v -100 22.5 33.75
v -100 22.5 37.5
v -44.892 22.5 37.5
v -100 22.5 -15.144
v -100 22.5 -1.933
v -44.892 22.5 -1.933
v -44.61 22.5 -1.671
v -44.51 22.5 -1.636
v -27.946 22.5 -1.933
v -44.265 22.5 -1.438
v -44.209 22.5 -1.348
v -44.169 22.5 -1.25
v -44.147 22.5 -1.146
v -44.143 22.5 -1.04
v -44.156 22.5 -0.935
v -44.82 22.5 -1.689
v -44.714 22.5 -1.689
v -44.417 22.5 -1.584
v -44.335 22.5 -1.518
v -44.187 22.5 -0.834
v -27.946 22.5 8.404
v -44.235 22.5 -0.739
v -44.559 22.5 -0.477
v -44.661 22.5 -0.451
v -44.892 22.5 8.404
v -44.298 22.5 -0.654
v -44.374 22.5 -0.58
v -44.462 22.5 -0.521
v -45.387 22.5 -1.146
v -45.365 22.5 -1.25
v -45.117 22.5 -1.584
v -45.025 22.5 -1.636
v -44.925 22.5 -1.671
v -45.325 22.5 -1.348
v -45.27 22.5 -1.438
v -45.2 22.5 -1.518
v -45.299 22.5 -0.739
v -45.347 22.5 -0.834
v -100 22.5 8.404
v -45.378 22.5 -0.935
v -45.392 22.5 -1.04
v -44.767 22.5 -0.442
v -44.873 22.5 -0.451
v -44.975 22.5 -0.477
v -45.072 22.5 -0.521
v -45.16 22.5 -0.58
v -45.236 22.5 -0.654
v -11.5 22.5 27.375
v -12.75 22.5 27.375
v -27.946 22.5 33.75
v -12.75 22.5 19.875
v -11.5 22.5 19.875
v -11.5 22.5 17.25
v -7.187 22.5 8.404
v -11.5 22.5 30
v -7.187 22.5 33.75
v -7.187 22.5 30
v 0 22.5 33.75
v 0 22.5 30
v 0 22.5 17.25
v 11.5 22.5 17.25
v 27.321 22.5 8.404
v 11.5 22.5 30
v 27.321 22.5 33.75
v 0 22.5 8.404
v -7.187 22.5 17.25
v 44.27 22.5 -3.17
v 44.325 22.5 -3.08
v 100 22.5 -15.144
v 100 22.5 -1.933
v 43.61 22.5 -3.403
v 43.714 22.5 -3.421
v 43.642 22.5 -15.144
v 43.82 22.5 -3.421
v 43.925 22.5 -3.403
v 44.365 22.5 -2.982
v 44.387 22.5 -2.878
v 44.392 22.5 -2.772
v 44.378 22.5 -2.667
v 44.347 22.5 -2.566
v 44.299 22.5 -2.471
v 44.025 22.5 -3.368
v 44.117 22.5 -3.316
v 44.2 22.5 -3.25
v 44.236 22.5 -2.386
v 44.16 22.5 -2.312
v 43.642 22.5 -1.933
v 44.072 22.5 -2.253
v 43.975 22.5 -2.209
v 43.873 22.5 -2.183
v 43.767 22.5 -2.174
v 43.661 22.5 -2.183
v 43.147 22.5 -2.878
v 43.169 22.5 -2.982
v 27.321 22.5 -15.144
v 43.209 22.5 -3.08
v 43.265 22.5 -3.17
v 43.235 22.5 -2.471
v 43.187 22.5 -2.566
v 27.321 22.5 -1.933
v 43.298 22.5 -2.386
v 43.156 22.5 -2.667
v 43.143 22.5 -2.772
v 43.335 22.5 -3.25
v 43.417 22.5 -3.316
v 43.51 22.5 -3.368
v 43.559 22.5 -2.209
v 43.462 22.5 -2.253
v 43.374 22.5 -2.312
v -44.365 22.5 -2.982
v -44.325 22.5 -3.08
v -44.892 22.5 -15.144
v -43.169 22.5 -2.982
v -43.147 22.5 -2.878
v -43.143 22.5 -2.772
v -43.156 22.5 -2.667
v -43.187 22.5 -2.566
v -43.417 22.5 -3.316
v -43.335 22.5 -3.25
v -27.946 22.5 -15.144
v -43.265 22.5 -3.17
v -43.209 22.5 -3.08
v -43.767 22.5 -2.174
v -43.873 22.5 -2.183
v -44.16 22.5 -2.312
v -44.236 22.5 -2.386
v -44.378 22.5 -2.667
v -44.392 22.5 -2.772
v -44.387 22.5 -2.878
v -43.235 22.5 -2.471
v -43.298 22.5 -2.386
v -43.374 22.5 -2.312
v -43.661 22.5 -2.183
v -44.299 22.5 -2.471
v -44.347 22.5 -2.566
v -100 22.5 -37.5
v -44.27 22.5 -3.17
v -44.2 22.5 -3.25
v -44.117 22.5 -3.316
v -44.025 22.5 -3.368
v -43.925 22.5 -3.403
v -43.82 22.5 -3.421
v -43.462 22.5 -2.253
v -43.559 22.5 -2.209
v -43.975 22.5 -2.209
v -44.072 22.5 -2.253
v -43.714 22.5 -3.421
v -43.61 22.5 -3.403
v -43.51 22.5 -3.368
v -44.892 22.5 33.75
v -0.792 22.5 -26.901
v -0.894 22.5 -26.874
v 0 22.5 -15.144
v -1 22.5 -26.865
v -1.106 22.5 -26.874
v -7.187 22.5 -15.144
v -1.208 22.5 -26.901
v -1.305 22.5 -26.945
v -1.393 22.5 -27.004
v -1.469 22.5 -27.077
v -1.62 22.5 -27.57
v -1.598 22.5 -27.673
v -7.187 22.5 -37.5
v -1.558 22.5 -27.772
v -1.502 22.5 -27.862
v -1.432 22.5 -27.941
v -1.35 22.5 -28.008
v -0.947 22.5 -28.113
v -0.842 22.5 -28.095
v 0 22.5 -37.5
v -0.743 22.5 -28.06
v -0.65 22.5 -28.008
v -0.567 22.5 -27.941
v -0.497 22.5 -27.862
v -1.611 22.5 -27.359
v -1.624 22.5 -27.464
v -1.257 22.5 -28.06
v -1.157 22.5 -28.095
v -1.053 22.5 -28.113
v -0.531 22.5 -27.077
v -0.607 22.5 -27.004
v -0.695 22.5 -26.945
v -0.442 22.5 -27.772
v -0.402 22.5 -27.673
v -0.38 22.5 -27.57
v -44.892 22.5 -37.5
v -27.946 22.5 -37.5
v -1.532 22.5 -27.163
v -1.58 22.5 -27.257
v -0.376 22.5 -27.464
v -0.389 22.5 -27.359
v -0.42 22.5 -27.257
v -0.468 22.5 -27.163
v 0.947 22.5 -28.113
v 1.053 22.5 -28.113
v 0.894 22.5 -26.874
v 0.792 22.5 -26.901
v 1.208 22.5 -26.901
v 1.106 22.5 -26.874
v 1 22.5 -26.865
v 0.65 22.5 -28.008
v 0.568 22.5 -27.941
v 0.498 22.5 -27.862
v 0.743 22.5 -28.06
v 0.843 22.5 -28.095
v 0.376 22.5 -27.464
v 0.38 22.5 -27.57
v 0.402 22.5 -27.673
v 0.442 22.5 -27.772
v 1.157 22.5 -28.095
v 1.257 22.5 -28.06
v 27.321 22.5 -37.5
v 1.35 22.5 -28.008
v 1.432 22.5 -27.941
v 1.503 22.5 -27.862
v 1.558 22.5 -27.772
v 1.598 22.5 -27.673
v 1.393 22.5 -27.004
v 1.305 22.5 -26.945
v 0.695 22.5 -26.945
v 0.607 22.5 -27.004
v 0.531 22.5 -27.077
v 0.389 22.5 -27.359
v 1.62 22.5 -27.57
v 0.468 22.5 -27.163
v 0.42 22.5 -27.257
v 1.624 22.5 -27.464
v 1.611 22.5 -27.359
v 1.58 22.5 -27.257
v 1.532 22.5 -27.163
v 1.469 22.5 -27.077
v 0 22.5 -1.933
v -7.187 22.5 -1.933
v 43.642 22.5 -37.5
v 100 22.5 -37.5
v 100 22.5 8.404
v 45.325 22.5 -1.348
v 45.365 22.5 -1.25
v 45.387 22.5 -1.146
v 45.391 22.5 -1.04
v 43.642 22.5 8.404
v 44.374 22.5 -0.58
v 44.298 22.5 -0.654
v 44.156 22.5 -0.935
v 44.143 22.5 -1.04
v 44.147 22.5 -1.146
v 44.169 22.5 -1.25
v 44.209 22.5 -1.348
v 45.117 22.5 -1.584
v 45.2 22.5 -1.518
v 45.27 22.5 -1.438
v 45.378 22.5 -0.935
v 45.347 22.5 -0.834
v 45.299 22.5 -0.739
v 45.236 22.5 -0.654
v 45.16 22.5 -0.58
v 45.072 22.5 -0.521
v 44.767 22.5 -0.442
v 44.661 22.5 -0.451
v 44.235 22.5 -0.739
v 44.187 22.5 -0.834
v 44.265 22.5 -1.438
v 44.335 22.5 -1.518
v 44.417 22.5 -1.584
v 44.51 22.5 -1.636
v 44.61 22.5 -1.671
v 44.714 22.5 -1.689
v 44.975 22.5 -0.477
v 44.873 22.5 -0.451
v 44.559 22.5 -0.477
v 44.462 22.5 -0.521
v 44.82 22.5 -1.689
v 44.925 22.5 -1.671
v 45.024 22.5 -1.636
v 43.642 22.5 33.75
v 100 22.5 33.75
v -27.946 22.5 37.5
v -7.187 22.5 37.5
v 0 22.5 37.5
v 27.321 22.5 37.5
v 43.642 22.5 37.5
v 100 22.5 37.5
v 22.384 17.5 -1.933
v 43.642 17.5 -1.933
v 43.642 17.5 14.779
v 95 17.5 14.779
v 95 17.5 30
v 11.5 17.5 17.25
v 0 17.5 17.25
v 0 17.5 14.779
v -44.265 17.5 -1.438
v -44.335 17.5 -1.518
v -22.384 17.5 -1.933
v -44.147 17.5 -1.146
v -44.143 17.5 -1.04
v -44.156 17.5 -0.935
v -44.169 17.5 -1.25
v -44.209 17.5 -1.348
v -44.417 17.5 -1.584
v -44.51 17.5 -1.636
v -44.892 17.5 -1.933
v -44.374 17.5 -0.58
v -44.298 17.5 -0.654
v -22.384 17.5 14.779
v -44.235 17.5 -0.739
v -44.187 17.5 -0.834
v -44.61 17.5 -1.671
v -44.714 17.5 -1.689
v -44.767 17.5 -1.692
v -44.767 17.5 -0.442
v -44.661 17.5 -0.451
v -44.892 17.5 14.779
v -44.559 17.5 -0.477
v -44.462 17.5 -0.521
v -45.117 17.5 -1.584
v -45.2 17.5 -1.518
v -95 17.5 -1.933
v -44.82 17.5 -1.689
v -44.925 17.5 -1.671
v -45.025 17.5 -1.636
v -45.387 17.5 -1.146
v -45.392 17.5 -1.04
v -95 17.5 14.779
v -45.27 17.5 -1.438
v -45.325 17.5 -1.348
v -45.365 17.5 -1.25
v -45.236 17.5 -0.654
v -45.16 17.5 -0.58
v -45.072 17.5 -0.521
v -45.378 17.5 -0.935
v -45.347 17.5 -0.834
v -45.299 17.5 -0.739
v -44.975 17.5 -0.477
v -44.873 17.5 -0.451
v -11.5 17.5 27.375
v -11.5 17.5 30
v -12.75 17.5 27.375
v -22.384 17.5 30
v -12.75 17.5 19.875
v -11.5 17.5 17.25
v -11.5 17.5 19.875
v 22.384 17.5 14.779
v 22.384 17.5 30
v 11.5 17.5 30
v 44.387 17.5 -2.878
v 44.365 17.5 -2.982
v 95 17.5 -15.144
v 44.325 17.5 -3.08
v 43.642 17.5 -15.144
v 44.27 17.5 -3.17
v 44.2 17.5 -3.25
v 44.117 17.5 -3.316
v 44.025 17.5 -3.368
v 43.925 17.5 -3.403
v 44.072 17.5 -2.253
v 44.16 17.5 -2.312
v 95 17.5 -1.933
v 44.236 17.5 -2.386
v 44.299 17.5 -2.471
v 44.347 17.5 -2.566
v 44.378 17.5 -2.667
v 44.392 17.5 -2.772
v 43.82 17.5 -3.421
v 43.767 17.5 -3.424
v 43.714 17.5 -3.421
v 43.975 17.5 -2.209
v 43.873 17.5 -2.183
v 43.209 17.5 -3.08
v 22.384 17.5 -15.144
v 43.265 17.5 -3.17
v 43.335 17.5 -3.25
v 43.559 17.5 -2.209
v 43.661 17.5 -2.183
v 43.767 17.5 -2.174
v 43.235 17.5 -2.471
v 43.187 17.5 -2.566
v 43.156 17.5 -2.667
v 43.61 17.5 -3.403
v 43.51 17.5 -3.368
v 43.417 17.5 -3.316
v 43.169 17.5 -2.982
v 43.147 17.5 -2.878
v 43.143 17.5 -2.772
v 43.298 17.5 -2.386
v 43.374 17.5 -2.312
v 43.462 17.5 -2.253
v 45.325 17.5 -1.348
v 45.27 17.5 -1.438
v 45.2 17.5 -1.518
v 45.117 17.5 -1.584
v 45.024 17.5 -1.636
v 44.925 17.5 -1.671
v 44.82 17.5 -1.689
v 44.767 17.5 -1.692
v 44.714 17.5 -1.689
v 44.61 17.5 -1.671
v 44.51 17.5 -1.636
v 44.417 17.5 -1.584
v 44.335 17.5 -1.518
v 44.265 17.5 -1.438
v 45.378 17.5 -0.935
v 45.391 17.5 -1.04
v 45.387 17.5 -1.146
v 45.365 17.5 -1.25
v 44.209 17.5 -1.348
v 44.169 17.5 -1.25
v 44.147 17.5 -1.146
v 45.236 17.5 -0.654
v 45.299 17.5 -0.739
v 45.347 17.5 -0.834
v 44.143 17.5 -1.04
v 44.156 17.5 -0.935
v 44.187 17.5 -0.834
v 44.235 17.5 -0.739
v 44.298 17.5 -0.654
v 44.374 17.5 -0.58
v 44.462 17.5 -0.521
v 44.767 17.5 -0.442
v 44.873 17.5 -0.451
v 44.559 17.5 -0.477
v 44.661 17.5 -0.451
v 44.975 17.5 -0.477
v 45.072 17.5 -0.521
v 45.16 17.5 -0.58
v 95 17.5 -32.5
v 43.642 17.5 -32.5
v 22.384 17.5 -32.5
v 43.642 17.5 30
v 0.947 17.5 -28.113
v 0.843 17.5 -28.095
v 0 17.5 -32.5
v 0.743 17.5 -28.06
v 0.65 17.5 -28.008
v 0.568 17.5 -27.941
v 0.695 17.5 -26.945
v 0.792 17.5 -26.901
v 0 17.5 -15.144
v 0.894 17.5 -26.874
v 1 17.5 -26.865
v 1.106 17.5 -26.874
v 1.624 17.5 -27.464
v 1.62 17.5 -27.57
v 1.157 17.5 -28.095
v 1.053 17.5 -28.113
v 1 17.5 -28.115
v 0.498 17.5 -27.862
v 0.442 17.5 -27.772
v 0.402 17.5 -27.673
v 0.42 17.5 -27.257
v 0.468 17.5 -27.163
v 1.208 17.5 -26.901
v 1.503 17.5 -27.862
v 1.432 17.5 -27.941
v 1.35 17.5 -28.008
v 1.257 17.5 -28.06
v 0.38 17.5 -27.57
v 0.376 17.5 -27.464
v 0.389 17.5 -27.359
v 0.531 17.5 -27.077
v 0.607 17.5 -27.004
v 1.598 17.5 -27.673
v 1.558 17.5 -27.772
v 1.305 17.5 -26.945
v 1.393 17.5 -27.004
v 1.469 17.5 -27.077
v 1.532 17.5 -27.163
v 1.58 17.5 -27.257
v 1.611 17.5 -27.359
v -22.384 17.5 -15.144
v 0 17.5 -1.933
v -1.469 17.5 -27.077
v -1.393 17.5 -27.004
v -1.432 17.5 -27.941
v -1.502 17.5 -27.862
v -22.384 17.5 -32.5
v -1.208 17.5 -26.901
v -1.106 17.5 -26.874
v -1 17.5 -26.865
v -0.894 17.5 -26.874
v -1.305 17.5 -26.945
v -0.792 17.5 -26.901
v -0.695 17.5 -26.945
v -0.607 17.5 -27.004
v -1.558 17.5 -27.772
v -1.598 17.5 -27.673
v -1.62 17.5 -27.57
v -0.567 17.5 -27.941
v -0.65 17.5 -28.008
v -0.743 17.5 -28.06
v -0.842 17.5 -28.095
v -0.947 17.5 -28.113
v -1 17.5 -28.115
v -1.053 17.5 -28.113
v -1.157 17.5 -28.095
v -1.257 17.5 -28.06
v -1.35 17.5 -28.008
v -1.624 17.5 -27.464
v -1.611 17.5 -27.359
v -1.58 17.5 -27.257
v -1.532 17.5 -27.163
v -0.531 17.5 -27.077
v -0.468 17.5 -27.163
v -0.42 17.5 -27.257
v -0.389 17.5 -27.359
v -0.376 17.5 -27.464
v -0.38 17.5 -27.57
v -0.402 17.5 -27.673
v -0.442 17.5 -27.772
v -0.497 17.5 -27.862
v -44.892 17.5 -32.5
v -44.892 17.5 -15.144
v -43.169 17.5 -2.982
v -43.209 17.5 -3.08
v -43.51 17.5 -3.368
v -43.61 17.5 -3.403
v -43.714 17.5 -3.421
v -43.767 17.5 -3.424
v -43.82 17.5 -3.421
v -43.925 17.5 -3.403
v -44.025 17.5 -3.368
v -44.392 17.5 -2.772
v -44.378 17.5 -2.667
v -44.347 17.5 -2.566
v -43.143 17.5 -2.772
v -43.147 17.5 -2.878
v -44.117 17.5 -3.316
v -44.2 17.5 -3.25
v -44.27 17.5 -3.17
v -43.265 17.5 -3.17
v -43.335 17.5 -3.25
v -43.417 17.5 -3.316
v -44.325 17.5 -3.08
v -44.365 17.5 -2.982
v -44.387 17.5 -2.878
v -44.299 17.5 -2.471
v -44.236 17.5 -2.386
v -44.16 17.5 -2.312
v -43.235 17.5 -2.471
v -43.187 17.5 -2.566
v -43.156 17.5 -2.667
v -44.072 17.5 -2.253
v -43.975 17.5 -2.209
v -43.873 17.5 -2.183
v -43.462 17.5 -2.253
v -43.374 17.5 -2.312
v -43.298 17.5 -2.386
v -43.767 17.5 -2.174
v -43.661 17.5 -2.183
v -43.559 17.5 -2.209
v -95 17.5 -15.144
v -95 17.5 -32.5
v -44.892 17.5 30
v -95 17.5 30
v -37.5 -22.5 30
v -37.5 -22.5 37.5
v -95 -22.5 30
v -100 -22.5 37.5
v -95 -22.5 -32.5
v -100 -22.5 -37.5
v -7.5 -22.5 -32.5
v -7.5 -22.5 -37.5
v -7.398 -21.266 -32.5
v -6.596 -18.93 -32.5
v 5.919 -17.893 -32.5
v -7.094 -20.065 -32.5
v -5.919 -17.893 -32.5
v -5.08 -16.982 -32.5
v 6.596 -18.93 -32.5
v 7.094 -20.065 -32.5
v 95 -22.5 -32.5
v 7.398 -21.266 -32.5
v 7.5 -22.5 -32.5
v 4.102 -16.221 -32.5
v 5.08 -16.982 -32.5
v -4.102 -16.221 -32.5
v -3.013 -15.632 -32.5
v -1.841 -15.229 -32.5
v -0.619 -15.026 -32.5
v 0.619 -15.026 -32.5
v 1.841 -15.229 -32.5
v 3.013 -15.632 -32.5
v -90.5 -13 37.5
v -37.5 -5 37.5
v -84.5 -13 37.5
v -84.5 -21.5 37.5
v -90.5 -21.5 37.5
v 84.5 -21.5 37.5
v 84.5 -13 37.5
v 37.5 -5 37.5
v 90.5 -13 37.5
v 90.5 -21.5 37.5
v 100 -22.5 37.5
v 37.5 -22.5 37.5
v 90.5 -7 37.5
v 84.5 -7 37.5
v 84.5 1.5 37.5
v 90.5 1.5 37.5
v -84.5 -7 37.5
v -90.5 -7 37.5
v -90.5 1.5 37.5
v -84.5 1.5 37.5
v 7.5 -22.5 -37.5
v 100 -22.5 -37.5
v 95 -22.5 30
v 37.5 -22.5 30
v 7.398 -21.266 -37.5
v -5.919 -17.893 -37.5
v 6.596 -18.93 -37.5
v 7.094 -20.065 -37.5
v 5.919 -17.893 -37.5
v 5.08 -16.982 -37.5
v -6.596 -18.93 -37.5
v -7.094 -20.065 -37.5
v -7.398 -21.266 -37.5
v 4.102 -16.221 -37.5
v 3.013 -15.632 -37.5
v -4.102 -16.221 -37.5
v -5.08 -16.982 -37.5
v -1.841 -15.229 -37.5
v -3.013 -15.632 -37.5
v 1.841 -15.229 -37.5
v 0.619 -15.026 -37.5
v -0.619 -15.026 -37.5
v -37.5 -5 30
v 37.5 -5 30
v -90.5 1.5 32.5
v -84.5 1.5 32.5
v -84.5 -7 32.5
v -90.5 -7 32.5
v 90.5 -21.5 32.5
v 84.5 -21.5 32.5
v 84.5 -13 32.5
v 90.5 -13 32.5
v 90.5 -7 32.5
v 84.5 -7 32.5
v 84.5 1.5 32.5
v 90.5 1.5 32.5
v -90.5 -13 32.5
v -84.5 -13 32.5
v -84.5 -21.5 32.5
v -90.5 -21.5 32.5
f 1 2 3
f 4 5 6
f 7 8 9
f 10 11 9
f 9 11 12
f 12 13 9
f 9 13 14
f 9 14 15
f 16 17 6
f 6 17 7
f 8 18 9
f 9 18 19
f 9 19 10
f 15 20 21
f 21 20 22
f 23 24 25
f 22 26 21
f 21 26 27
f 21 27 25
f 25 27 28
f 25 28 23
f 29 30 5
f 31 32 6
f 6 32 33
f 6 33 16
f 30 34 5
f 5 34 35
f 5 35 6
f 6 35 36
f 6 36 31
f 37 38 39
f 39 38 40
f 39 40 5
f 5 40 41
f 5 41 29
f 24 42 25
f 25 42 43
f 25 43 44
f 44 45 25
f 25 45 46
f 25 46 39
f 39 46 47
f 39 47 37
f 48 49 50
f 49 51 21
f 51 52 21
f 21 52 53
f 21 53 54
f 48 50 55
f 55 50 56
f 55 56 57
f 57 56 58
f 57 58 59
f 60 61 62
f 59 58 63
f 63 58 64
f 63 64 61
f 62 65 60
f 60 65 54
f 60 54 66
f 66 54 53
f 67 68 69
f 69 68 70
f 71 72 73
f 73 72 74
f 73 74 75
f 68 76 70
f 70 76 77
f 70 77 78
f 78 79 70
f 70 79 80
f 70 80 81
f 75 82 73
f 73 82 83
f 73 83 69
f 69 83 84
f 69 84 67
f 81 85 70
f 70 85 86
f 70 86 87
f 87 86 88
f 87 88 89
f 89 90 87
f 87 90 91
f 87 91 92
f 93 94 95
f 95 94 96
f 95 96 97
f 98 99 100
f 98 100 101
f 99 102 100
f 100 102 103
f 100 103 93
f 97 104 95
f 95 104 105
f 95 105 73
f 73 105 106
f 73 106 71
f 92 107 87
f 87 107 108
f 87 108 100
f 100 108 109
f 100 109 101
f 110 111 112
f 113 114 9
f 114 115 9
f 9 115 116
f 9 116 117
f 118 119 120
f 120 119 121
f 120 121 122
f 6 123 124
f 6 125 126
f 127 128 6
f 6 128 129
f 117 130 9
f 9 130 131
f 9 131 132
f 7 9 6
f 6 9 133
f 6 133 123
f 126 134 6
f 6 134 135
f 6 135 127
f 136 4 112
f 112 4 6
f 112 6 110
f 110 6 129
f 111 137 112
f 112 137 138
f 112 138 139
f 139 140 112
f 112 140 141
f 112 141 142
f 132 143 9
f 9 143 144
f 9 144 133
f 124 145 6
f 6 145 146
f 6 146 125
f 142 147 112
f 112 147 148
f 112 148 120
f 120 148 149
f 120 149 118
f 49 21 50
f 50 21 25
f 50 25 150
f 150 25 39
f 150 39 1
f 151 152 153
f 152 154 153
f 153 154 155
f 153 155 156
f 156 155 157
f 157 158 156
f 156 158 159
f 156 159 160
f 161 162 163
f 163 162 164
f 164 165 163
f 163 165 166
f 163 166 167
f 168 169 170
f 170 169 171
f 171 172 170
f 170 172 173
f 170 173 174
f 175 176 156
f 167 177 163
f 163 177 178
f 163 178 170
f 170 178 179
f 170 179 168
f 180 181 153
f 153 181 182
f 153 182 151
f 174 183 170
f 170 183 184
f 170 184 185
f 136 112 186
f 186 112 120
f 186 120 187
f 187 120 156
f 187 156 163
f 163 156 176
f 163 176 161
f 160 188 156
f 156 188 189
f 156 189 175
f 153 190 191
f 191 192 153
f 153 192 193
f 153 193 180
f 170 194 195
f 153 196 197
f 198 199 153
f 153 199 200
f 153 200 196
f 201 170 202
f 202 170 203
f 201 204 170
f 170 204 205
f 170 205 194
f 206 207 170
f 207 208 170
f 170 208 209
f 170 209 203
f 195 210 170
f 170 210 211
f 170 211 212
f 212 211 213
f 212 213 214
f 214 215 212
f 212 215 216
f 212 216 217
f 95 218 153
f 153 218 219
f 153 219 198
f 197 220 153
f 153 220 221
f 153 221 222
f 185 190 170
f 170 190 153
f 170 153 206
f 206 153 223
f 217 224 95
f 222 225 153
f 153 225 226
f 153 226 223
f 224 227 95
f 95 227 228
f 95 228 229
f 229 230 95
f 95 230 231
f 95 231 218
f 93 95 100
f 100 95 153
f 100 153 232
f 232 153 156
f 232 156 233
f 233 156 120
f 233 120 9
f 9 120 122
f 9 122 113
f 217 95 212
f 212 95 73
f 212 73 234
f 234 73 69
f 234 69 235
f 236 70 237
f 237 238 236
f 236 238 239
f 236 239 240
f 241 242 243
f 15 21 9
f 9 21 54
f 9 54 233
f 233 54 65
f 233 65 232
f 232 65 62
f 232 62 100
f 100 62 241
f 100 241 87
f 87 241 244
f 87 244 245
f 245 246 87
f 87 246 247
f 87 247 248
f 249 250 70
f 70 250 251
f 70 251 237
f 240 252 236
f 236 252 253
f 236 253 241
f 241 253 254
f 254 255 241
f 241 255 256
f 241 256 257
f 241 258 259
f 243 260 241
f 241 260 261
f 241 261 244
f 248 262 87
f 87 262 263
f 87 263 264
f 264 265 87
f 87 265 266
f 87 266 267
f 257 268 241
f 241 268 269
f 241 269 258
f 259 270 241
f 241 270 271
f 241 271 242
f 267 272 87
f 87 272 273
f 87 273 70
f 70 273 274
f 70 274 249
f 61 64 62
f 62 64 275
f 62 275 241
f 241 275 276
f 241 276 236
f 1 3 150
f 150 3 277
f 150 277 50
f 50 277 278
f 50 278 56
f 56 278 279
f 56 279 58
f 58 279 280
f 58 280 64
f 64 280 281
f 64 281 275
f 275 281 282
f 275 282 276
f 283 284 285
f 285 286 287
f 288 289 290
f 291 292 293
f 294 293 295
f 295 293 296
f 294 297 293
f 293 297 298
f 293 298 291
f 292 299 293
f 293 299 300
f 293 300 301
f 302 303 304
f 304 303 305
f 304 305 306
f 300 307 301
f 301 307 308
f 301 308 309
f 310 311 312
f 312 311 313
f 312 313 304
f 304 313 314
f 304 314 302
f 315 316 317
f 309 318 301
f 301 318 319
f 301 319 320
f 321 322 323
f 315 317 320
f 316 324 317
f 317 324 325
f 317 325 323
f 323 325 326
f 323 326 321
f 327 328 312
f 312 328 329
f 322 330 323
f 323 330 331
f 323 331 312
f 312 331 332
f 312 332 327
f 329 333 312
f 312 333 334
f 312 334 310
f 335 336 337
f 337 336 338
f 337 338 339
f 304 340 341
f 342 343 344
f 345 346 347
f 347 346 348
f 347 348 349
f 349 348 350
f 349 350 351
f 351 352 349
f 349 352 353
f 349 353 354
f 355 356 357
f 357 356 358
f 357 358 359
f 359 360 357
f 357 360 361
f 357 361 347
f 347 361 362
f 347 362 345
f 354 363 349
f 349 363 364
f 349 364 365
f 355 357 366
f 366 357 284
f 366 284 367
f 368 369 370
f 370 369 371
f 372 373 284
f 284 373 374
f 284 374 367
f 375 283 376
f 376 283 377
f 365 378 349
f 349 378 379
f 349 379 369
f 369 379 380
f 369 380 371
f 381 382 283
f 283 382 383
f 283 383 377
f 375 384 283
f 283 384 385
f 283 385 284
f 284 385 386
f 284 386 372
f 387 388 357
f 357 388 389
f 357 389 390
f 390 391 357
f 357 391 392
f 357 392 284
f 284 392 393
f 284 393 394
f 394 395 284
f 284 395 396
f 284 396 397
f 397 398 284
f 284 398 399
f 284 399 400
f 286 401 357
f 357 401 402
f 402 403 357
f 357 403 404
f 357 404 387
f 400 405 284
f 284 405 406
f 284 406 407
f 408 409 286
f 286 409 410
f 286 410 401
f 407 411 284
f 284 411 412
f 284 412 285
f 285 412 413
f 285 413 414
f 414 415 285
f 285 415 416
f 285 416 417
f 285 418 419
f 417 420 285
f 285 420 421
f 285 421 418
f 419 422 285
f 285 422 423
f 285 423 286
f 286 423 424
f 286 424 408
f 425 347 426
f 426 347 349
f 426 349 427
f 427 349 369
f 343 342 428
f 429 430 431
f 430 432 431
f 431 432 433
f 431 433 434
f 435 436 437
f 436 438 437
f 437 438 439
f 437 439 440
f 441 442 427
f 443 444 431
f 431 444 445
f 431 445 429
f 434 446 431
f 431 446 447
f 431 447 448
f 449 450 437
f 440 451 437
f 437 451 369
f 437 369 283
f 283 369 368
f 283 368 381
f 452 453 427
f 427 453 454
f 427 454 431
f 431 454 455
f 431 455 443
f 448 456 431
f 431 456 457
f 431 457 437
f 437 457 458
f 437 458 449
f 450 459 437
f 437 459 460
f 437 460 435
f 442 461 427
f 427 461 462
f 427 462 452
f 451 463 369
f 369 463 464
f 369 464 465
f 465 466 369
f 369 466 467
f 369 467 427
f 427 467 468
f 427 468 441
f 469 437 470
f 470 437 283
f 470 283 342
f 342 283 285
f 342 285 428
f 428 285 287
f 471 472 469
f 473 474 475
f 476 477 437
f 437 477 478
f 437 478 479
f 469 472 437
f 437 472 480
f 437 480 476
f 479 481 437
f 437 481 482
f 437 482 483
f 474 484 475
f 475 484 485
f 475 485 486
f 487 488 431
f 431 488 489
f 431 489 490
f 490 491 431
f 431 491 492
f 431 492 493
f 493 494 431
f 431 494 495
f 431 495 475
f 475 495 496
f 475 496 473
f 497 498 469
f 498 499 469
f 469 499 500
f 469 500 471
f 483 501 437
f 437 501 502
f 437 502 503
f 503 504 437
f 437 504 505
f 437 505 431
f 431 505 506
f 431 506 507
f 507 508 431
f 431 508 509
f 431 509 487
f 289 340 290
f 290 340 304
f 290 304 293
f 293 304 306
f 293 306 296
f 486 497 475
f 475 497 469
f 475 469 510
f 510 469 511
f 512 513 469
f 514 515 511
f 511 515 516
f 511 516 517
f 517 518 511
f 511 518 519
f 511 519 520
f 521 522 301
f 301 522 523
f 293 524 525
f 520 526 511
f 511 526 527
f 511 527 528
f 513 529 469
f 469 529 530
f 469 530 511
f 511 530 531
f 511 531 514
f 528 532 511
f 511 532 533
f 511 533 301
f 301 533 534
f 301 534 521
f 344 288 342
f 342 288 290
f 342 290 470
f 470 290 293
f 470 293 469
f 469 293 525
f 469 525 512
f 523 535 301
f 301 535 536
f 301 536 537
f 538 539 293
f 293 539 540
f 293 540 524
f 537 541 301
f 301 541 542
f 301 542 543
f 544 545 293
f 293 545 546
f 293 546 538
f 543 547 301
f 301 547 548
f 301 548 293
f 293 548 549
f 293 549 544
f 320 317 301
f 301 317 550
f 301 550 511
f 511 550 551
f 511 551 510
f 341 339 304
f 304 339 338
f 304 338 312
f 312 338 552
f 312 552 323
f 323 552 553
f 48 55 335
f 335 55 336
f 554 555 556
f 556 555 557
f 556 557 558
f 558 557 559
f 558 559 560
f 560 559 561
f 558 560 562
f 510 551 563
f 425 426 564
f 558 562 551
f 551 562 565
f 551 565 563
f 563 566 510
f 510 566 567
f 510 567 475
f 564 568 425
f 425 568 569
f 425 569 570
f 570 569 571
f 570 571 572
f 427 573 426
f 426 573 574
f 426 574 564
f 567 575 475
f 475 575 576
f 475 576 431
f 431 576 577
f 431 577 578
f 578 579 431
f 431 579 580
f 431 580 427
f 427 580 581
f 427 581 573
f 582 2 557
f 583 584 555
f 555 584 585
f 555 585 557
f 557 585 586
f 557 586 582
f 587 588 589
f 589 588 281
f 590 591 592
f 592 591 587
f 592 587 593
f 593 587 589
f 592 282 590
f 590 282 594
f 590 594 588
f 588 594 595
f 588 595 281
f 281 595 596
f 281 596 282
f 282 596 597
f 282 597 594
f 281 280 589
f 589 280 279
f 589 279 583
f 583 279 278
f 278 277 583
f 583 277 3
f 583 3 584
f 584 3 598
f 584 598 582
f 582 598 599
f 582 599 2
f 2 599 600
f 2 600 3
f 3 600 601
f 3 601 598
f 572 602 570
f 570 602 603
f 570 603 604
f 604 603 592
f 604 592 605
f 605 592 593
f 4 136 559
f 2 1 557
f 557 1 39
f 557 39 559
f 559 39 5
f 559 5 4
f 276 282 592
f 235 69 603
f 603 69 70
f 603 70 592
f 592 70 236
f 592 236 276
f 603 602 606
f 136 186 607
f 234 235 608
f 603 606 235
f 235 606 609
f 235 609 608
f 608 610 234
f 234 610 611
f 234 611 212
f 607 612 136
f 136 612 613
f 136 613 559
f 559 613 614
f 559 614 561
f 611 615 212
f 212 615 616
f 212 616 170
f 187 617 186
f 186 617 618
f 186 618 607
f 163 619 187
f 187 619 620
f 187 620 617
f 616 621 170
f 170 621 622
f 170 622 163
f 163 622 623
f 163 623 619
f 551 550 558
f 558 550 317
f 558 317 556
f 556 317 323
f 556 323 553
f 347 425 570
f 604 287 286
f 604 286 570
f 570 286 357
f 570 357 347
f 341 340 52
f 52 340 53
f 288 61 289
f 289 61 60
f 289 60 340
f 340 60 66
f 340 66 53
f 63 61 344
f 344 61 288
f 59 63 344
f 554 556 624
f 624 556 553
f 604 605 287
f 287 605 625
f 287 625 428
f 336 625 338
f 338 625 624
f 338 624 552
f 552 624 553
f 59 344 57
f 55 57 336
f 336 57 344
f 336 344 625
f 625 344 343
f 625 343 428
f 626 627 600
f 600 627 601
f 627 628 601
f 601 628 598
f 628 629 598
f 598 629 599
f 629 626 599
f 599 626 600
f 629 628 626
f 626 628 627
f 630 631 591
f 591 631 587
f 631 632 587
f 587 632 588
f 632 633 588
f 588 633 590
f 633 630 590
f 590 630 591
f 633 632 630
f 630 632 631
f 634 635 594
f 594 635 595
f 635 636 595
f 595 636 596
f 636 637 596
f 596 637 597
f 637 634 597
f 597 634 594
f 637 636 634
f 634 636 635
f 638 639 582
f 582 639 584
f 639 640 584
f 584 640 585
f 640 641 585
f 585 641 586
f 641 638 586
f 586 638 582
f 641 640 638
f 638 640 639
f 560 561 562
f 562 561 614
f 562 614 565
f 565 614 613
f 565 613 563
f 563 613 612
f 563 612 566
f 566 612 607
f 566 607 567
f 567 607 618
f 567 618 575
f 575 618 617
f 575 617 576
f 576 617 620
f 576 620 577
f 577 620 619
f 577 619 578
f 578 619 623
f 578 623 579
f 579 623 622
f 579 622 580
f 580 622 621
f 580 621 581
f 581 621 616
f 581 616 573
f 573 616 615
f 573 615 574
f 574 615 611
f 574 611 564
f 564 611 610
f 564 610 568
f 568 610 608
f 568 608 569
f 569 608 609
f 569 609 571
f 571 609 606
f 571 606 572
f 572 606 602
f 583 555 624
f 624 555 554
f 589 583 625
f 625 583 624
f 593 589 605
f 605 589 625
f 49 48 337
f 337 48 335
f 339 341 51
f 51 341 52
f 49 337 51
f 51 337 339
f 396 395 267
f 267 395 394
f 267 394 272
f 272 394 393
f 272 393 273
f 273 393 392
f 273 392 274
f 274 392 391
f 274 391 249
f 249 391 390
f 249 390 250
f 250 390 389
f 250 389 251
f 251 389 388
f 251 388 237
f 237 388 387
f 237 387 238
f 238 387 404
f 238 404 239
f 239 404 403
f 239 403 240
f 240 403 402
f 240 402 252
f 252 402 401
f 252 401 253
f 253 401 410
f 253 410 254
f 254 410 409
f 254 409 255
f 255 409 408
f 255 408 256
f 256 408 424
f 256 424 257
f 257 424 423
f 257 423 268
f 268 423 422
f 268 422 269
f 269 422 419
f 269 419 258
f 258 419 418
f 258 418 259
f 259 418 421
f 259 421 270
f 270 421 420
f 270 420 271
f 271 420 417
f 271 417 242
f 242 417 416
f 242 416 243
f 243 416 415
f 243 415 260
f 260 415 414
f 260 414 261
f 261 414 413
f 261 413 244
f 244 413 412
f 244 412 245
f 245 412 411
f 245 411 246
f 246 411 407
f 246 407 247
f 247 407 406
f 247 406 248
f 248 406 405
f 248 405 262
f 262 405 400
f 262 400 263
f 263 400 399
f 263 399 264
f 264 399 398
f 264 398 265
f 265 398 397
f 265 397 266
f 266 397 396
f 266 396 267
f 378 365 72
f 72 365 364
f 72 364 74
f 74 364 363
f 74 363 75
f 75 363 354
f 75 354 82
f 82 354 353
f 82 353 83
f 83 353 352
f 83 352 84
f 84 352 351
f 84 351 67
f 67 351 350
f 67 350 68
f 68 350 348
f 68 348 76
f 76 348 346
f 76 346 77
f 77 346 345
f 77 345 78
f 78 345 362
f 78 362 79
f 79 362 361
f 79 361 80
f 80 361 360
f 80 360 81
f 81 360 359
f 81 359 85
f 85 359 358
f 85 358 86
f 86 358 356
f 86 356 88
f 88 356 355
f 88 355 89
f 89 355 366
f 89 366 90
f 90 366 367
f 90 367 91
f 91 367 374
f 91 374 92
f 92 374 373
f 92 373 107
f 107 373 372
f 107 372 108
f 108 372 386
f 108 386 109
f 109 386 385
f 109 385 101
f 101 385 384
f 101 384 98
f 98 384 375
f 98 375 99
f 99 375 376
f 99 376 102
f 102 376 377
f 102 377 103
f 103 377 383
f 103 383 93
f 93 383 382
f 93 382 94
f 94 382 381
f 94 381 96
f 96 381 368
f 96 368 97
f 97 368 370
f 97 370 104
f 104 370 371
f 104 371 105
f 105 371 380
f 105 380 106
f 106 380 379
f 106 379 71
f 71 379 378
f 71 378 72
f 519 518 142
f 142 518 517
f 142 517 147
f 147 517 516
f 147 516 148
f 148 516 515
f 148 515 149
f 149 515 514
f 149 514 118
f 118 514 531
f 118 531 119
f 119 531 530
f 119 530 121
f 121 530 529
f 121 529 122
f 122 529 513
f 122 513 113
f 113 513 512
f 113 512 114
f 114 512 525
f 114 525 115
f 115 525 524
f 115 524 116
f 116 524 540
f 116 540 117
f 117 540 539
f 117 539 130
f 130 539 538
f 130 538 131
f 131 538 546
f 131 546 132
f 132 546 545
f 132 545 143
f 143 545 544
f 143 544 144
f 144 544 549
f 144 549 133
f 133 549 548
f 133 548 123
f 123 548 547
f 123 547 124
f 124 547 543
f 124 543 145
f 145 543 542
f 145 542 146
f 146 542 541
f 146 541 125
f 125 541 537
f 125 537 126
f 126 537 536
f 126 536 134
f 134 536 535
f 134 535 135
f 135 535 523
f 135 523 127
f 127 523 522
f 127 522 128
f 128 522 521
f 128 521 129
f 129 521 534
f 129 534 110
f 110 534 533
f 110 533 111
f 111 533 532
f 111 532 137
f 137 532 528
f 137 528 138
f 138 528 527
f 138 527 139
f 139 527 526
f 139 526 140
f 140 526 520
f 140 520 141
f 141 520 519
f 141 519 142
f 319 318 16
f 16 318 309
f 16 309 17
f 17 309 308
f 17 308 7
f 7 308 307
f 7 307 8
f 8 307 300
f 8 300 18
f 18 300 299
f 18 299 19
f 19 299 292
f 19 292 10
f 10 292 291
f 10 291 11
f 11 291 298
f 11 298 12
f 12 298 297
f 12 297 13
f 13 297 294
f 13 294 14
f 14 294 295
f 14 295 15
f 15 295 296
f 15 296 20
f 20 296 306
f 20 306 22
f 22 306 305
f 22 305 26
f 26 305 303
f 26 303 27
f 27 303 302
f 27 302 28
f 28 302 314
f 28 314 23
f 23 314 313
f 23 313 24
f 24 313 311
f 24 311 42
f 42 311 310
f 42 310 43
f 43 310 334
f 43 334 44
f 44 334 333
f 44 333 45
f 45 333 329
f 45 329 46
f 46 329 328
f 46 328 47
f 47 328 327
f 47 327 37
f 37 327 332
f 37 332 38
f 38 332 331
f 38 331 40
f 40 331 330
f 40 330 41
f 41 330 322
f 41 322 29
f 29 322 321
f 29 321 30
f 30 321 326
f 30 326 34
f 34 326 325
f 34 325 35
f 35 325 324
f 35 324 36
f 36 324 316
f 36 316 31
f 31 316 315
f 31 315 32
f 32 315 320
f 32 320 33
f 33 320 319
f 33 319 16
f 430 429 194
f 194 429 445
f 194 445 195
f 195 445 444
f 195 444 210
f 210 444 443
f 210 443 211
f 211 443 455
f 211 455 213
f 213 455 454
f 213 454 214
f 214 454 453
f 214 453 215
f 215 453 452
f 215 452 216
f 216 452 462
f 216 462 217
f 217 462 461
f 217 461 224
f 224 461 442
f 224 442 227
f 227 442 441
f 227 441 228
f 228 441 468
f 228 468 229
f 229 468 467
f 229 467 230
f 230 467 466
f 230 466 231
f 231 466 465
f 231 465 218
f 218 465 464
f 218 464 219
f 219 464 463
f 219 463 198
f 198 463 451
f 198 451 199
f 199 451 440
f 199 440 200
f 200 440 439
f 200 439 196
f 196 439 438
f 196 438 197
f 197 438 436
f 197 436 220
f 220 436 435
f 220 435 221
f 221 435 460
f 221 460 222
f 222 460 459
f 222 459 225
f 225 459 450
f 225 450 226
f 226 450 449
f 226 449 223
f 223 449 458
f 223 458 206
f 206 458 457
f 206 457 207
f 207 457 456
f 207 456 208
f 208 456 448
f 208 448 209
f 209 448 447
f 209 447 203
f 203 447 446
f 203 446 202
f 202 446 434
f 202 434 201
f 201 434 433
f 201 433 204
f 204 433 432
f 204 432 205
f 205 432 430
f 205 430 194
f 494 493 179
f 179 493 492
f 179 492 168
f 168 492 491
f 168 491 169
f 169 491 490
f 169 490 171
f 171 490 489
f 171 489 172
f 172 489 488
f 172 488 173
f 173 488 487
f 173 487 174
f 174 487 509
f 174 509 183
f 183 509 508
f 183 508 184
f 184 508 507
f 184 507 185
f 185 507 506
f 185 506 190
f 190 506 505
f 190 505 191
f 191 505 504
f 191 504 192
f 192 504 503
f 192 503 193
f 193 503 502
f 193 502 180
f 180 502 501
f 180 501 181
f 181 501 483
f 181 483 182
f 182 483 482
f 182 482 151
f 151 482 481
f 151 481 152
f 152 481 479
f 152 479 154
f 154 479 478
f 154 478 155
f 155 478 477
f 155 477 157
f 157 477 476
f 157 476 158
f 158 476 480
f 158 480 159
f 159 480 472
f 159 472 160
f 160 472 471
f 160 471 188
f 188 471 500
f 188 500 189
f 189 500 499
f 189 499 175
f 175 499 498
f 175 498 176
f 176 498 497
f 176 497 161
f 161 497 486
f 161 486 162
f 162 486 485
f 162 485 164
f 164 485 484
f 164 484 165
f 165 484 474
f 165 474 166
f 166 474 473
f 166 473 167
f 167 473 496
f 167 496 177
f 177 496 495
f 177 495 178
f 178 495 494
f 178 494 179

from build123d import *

# Parameters (mm, degrees)
SKETCH1_W                 = 200
SKETCH1_H                 = 75
BOSS_EXTRUDE1_DEPTH       = 22.5
SHELL1_T                  = -5
SKETCH2_W                 = 23
SKETCH2_H                 = 12.75
CUT_EXTRUDE1_DEPTH        = 116.893269865
SKETCH4_W                 = 190
SKETCH4_H                 = 40
BOSS_EXTRUDE2_DEPTH       = 2.5
SKETCH5_W                 = 6
SKETCH5_H                 = 8.5
SKETCH5_W_2               = 5
SKETCH5_H_2               = 7.5
CUT_EXTRUDE2_DEPTH        = 5
F_1_0MM_DOWEL_HOLE1_D     = 15
F_1_0MM_DOWEL_HOLE1_DEPTH = 5
F_1_0MM_DOWEL_HOLE1_TIP   = 4.506454643
SKETCH9_W                 = 75
SKETCH9_H                 = 17.5
CUT_EXTRUDE3_DEPTH        = 7.5
SKETCH10_W                = 2.5
SKETCH10_H                = 7.5
CUT_EXTRUDE4_DEPTH        = 5
F_1_0MM_DOWEL_HOLE2_D     = 1.25
F_1_0MM_DOWEL_HOLE2_DEPTH = 5
F_1_0MM_DOWEL_HOLE2_TIP   = 0.375537887


with BuildPart() as part:
    # Sketch1 → Boss-Extrude1 (new, symmetric)
    with BuildSketch(Plane(origin=(0, 0, 0), x_dir=(1, 0, 0), z_dir=(0, 1, 0))):
        Rectangle(SKETCH1_W, SKETCH1_H)
    extrude(amount=BOSS_EXTRUDE1_DEPTH, both=True)

    # Shell1
    shell1_openings = [part.faces().sort_by_distance(p)[0] for p in [
        (0, -22.5, 0),
    ]]
    offset(amount=SHELL1_T, openings=shell1_openings, kind=Kind.INTERSECTION)

    # Sketch2 → Cut-Extrude1 (cut, through all)
    with BuildSketch(Plane(origin=(0, 22.5, 0), x_dir=(1, 0, 0), z_dir=(0, 1, 0))):
        with Locations((0, -23.625)):
            Rectangle(SKETCH2_W, SKETCH2_H)
    extrude(amount=-CUT_EXTRUDE1_DEPTH, mode=Mode.SUBTRACT)

    # Sketch4 → Boss-Extrude2 (add)
    with BuildSketch(Plane(origin=(0, 0, 32.5), x_dir=(-1, 0, 0), z_dir=(0, 0, -1))):
        with Locations((0, -2.5)):
            Rectangle(SKETCH4_W, SKETCH4_H)
    extrude(amount=BOSS_EXTRUDE2_DEPTH)

    # Sketch5 → Cut-Extrude2 (cut)
    # profile 1 of 8: a face of its own
    with BuildSketch(Plane.XY.offset(37.5)):
        with Locations((-87.5, -2.75)):
            Rectangle(SKETCH5_W, SKETCH5_H)
        with Locations((-87.5, -2.75)):
            Rectangle(SKETCH5_W_2, SKETCH5_H_2, mode=Mode.SUBTRACT)
    # profile 2 of 8: a face of its own
    with BuildSketch(Plane.XY.offset(37.5)):
        with Locations((-87.5, -2.75)):
            Rectangle(SKETCH5_W_2, SKETCH5_H_2)
    # profile 3 of 8: a face of its own
    with BuildSketch(Plane.XY.offset(37.5)):
        with Locations((-87.5, -17.25)):
            Rectangle(SKETCH5_W, SKETCH5_H)
        with Locations((-87.5, -17.25)):
            Rectangle(SKETCH5_W_2, SKETCH5_H_2, mode=Mode.SUBTRACT)
    # profile 4 of 8: a face of its own
    with BuildSketch(Plane.XY.offset(37.5)):
        with Locations((-87.5, -17.25)):
            Rectangle(SKETCH5_W_2, SKETCH5_H_2)
    # profile 5 of 8: a face of its own
    with BuildSketch(Plane.XY.offset(37.5)):
        with Locations((87.5, -2.75)):
            Rectangle(SKETCH5_W, SKETCH5_H)
        with Locations((87.5, -2.75)):
            Rectangle(SKETCH5_W_2, SKETCH5_H_2, mode=Mode.SUBTRACT)
    # profile 6 of 8: a face of its own
    with BuildSketch(Plane.XY.offset(37.5)):
        with Locations((87.5, -2.75)):
            Rectangle(SKETCH5_W_2, SKETCH5_H_2)
    # profile 7 of 8: a face of its own
    with BuildSketch(Plane.XY.offset(37.5)):
        with Locations((87.5, -17.25)):
            Rectangle(SKETCH5_W, SKETCH5_H)
        with Locations((87.5, -17.25)):
            Rectangle(SKETCH5_W_2, SKETCH5_H_2, mode=Mode.SUBTRACT)
    # profile 8 of 8: a face of its own
    with BuildSketch(Plane.XY.offset(37.5)):
        with Locations((87.5, -17.25)):
            Rectangle(SKETCH5_W_2, SKETCH5_H_2)
    extrude(amount=-CUT_EXTRUDE2_DEPTH, mode=Mode.SUBTRACT)

    # Ø1.0mm Dowel Hole1
    with Locations(Plane(origin=(0, 0, -37.5), x_dir=(-1, 0, 0), z_dir=(0, 0, -1))):
        with Locations((0, -22.5)):
            Hole(F_1_0MM_DOWEL_HOLE1_D / 2, depth=F_1_0MM_DOWEL_HOLE1_DEPTH)
            with Locations((0, 0, -(F_1_0MM_DOWEL_HOLE1_DEPTH + F_1_0MM_DOWEL_HOLE1_TIP / 2))):  # 118° drill point
                Cone(0, F_1_0MM_DOWEL_HOLE1_D / 2, F_1_0MM_DOWEL_HOLE1_TIP, mode=Mode.SUBTRACT)

    # Sketch9 → Cut-Extrude3 (cut)
    with BuildSketch(Plane.XY.offset(37.5)):
        with Locations((0, -13.75)):
            Rectangle(SKETCH9_W, SKETCH9_H)
    extrude(amount=-CUT_EXTRUDE3_DEPTH, mode=Mode.SUBTRACT)

    # Sketch10 → Cut-Extrude4 (cut)
    with BuildSketch(Plane(origin=(0, 22.5, 0), x_dir=(1, 0, 0), z_dir=(0, 1, 0))):
        with Locations((-11.5, -23.625)):
            Rectangle(SKETCH10_W, SKETCH10_H)
    extrude(amount=-CUT_EXTRUDE4_DEPTH, mode=Mode.SUBTRACT)

    # Ø1.0mm Dowel Hole2
    with Locations(Plane(origin=(0, 22.5, 0), x_dir=(1, 0, 0), z_dir=(0, 1, 0))):
        with Locations((-0.999952175, 27.490220049), (1.000000001, 27.490219113), (-44.767078272, 1.066584153), (-43.767078272, 2.79863496), (43.767078272, 2.79863496), (44.76705517, 1.066626038)):
            Hole(F_1_0MM_DOWEL_HOLE2_D / 2, depth=F_1_0MM_DOWEL_HOLE2_DEPTH)
            with Locations((0, 0, -(F_1_0MM_DOWEL_HOLE2_DEPTH + F_1_0MM_DOWEL_HOLE2_TIP / 2))):  # 118° drill point
                Cone(0, F_1_0MM_DOWEL_HOLE2_D / 2, F_1_0MM_DOWEL_HOLE2_TIP, mode=Mode.SUBTRACT)


solid = part.part
